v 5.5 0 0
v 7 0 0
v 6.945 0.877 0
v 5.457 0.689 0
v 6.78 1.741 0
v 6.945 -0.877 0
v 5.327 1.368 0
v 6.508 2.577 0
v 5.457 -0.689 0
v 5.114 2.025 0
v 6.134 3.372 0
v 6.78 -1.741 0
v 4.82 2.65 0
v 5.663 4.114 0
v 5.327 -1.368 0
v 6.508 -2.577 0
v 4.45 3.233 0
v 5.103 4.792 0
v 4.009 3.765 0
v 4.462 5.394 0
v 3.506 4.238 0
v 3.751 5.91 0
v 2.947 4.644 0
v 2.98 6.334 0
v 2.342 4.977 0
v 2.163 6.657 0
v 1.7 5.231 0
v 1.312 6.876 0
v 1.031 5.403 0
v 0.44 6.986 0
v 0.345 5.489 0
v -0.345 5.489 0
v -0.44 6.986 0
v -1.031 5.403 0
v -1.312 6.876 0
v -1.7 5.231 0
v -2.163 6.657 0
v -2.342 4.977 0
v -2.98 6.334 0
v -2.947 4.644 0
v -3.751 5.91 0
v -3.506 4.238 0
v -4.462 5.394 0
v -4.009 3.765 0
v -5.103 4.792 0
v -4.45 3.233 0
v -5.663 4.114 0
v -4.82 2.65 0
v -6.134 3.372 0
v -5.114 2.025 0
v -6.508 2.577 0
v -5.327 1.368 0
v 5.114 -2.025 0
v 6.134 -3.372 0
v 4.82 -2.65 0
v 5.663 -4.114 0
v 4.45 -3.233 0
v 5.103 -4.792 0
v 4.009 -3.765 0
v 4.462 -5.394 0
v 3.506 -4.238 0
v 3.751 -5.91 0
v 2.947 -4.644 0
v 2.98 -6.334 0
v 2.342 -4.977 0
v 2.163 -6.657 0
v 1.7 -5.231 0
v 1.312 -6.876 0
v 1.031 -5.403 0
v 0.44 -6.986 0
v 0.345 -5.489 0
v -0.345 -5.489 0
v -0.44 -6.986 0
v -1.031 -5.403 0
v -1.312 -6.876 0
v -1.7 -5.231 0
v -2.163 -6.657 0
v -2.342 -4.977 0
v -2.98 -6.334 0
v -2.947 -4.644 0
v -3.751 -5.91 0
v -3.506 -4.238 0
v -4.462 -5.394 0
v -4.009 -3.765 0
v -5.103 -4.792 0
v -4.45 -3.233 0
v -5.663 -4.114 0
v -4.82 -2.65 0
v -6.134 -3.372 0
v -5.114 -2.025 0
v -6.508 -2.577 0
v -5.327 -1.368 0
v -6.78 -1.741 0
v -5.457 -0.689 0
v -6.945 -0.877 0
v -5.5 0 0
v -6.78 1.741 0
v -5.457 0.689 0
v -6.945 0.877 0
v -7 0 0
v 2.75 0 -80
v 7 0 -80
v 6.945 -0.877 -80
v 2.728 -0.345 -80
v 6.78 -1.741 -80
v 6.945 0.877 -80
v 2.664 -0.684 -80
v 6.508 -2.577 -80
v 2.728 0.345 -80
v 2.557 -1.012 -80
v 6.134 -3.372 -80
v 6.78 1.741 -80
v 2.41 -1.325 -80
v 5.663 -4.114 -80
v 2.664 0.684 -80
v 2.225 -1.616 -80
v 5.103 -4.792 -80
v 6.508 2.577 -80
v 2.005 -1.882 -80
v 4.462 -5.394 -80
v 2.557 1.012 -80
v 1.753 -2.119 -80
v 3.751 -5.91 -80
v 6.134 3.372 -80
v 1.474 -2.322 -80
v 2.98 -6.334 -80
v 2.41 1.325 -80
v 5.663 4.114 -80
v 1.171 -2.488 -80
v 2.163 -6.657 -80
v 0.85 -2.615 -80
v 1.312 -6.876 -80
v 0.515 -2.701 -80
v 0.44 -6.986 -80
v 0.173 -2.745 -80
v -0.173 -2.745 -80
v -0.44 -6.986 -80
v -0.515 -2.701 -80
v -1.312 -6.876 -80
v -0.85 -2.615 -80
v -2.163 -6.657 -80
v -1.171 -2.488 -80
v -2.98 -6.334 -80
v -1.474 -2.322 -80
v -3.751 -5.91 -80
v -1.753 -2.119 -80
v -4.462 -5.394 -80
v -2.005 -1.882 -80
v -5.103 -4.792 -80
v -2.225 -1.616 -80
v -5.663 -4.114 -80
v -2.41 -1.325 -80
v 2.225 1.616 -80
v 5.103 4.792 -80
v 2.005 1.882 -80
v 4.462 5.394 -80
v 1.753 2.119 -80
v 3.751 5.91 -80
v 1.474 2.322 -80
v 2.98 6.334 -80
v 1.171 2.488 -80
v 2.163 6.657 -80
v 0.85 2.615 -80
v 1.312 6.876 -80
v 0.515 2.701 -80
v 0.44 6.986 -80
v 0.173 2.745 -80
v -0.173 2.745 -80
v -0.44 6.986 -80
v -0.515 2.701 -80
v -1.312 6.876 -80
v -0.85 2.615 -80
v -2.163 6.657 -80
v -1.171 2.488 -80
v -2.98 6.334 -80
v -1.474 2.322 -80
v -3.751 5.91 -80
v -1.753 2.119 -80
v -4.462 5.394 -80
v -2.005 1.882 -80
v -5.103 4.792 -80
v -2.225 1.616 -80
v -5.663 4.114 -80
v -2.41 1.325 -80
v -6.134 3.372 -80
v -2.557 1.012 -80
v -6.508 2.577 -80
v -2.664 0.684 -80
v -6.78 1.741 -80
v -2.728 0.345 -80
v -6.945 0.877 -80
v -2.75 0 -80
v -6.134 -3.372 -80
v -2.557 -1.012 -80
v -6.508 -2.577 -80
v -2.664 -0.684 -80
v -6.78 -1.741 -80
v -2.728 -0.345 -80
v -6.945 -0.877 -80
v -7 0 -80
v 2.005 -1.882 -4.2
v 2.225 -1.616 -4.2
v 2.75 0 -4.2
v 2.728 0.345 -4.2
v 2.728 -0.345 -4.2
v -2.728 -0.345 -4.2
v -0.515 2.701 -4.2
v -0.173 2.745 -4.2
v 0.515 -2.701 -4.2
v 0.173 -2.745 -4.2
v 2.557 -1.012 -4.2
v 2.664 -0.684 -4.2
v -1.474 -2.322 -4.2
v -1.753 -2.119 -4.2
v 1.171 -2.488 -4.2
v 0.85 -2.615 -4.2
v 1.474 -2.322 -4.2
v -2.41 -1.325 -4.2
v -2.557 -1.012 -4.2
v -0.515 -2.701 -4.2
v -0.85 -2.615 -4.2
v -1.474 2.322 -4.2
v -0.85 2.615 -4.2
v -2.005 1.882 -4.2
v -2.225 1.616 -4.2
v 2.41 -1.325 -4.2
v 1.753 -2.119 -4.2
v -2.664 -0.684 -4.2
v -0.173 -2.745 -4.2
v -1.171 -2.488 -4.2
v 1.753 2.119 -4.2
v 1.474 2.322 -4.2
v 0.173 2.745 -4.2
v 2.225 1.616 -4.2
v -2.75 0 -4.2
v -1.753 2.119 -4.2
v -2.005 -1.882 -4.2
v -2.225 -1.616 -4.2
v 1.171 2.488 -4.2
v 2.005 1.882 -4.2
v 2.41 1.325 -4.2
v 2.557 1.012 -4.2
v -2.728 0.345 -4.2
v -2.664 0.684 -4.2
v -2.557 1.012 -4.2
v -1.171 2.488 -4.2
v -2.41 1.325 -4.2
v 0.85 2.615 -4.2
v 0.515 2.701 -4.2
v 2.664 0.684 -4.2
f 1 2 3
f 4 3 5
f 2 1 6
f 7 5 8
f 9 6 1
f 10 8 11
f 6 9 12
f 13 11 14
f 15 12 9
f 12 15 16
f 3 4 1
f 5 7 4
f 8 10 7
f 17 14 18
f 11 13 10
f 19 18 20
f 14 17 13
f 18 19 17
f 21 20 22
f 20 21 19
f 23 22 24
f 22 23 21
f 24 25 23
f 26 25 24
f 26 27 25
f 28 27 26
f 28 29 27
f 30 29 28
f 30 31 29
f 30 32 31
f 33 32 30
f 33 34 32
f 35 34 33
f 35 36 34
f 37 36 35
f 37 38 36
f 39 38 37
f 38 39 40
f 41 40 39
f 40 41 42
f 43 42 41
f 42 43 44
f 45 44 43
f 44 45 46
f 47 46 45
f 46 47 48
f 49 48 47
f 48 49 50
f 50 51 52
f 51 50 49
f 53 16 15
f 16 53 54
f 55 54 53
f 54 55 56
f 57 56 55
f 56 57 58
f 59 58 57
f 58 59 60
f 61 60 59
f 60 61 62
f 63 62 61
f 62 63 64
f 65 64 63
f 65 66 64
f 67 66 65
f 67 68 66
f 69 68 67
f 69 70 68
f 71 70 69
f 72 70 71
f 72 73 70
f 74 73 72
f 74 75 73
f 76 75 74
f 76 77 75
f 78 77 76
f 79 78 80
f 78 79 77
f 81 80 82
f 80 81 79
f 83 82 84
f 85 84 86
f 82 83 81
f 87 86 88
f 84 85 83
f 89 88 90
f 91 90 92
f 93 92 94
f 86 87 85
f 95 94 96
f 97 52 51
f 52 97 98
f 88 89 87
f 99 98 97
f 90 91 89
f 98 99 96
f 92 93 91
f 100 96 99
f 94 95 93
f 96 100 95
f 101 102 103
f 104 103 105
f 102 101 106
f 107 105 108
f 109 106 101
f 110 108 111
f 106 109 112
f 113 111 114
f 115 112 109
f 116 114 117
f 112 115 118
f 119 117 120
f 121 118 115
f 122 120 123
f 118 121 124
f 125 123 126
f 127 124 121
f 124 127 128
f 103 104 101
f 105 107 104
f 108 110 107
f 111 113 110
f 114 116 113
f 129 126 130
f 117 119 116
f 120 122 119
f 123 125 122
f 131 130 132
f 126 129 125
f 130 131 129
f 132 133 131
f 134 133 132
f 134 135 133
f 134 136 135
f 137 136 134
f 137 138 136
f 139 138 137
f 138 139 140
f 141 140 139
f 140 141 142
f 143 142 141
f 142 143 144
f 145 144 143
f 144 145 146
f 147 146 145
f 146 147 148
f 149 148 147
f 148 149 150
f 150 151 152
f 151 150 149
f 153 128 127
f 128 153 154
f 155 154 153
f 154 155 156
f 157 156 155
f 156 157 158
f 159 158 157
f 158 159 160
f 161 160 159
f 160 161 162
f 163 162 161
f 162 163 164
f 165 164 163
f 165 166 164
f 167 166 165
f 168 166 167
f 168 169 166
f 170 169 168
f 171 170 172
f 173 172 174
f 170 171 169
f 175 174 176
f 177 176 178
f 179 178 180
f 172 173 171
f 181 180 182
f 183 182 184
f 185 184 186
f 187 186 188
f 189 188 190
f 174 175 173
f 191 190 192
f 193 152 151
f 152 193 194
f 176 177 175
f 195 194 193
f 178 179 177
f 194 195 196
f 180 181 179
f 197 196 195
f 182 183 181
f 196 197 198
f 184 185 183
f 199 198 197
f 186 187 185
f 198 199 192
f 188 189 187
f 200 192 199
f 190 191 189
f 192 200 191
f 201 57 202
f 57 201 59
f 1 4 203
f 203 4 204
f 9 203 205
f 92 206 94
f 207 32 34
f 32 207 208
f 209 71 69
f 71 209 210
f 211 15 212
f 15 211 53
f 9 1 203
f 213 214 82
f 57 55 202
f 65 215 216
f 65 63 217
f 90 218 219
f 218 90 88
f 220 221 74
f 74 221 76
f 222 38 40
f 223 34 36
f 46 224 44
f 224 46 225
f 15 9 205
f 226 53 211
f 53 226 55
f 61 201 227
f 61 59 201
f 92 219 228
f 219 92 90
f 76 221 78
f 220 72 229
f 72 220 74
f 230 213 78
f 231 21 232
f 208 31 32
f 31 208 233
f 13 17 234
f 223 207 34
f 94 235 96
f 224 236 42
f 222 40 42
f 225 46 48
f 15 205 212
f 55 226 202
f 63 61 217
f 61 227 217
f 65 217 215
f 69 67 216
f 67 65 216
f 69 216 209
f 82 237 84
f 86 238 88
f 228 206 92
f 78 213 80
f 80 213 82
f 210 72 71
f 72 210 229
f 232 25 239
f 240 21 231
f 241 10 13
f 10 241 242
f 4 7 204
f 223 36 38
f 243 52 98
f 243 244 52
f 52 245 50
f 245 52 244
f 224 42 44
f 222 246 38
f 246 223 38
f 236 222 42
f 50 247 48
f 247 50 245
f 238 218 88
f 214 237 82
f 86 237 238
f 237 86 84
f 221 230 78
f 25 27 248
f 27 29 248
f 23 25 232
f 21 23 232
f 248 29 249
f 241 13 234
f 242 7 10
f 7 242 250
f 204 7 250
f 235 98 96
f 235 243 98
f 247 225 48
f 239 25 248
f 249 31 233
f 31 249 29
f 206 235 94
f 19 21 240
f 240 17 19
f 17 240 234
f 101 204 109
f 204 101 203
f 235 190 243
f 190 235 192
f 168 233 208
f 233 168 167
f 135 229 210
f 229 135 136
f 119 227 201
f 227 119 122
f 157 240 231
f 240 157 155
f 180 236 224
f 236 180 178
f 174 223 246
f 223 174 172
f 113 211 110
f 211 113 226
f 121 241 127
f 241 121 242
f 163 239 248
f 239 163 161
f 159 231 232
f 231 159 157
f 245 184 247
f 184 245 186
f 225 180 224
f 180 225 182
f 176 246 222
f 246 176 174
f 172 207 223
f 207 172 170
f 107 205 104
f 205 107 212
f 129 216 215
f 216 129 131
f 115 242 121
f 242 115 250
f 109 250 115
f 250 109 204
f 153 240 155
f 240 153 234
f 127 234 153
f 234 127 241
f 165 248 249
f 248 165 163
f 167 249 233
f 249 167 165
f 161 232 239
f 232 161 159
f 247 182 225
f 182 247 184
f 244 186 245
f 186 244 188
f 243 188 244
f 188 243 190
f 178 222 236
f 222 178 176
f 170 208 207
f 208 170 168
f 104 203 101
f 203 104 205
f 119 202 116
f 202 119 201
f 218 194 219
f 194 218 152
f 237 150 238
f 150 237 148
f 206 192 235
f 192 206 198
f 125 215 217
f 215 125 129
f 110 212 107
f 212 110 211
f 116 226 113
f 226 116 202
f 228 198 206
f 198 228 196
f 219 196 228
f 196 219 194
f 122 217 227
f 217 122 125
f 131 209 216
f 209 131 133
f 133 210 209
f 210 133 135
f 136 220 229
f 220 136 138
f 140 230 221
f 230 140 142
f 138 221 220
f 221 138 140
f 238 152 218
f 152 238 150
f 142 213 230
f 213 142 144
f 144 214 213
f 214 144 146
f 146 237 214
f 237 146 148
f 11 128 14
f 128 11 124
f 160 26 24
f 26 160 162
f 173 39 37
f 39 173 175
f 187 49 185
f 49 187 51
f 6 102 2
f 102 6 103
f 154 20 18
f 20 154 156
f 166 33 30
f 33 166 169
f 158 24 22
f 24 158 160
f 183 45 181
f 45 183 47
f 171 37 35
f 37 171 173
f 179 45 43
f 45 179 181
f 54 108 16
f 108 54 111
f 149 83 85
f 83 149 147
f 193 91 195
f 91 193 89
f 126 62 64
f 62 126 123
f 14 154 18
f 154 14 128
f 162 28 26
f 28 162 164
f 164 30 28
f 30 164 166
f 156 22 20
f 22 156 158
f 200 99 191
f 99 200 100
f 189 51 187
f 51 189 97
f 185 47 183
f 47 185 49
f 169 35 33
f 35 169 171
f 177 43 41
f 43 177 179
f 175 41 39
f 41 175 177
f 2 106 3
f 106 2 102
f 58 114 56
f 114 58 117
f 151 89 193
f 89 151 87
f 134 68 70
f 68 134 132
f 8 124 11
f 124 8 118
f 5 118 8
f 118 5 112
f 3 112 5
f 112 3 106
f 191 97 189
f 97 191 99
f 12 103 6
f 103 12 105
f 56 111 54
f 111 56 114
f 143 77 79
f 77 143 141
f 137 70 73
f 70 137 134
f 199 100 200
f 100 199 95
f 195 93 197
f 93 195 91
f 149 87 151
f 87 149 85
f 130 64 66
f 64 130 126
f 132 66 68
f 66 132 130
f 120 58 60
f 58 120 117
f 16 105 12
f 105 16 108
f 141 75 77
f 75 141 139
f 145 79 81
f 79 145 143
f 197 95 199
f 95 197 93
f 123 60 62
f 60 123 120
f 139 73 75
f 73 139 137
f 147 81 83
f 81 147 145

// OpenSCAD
$fn = 50;


difference() {
	union() {
		translate(v = [0, 0, -80.0000000000]) {
			cylinder(h = 80, r = 7.0000000000);
		}
		cylinder(h = 0, r = 10.0000000000);
	}
	union() {
		translate(v = [0, 0, 0]) {
			rotate(a = [0, 0, 0]) {
				difference() {
					union() {
						#translate(v = [0, 0, -80.0000000000]) {
							cylinder(h = 80, r = 2.2500000000);
						}
						#translate(v = [0, 0, -4.2000000000]) {
							cylinder(h = 4.2000000000, r = 7.0000000000, r1 = 2.7500000000, r2 = 5.5000000000);
						}
						#translate(v = [0, 0, -80.0000000000]) {
							cylinder(h = 80, r = 2.7500000000);
						}
						#translate(v = [0, 0, -80.0000000000]) {
							cylinder(h = 80, r = 2.2500000000);
						}
					}
					union();
				}
			}
		}
	}
}
